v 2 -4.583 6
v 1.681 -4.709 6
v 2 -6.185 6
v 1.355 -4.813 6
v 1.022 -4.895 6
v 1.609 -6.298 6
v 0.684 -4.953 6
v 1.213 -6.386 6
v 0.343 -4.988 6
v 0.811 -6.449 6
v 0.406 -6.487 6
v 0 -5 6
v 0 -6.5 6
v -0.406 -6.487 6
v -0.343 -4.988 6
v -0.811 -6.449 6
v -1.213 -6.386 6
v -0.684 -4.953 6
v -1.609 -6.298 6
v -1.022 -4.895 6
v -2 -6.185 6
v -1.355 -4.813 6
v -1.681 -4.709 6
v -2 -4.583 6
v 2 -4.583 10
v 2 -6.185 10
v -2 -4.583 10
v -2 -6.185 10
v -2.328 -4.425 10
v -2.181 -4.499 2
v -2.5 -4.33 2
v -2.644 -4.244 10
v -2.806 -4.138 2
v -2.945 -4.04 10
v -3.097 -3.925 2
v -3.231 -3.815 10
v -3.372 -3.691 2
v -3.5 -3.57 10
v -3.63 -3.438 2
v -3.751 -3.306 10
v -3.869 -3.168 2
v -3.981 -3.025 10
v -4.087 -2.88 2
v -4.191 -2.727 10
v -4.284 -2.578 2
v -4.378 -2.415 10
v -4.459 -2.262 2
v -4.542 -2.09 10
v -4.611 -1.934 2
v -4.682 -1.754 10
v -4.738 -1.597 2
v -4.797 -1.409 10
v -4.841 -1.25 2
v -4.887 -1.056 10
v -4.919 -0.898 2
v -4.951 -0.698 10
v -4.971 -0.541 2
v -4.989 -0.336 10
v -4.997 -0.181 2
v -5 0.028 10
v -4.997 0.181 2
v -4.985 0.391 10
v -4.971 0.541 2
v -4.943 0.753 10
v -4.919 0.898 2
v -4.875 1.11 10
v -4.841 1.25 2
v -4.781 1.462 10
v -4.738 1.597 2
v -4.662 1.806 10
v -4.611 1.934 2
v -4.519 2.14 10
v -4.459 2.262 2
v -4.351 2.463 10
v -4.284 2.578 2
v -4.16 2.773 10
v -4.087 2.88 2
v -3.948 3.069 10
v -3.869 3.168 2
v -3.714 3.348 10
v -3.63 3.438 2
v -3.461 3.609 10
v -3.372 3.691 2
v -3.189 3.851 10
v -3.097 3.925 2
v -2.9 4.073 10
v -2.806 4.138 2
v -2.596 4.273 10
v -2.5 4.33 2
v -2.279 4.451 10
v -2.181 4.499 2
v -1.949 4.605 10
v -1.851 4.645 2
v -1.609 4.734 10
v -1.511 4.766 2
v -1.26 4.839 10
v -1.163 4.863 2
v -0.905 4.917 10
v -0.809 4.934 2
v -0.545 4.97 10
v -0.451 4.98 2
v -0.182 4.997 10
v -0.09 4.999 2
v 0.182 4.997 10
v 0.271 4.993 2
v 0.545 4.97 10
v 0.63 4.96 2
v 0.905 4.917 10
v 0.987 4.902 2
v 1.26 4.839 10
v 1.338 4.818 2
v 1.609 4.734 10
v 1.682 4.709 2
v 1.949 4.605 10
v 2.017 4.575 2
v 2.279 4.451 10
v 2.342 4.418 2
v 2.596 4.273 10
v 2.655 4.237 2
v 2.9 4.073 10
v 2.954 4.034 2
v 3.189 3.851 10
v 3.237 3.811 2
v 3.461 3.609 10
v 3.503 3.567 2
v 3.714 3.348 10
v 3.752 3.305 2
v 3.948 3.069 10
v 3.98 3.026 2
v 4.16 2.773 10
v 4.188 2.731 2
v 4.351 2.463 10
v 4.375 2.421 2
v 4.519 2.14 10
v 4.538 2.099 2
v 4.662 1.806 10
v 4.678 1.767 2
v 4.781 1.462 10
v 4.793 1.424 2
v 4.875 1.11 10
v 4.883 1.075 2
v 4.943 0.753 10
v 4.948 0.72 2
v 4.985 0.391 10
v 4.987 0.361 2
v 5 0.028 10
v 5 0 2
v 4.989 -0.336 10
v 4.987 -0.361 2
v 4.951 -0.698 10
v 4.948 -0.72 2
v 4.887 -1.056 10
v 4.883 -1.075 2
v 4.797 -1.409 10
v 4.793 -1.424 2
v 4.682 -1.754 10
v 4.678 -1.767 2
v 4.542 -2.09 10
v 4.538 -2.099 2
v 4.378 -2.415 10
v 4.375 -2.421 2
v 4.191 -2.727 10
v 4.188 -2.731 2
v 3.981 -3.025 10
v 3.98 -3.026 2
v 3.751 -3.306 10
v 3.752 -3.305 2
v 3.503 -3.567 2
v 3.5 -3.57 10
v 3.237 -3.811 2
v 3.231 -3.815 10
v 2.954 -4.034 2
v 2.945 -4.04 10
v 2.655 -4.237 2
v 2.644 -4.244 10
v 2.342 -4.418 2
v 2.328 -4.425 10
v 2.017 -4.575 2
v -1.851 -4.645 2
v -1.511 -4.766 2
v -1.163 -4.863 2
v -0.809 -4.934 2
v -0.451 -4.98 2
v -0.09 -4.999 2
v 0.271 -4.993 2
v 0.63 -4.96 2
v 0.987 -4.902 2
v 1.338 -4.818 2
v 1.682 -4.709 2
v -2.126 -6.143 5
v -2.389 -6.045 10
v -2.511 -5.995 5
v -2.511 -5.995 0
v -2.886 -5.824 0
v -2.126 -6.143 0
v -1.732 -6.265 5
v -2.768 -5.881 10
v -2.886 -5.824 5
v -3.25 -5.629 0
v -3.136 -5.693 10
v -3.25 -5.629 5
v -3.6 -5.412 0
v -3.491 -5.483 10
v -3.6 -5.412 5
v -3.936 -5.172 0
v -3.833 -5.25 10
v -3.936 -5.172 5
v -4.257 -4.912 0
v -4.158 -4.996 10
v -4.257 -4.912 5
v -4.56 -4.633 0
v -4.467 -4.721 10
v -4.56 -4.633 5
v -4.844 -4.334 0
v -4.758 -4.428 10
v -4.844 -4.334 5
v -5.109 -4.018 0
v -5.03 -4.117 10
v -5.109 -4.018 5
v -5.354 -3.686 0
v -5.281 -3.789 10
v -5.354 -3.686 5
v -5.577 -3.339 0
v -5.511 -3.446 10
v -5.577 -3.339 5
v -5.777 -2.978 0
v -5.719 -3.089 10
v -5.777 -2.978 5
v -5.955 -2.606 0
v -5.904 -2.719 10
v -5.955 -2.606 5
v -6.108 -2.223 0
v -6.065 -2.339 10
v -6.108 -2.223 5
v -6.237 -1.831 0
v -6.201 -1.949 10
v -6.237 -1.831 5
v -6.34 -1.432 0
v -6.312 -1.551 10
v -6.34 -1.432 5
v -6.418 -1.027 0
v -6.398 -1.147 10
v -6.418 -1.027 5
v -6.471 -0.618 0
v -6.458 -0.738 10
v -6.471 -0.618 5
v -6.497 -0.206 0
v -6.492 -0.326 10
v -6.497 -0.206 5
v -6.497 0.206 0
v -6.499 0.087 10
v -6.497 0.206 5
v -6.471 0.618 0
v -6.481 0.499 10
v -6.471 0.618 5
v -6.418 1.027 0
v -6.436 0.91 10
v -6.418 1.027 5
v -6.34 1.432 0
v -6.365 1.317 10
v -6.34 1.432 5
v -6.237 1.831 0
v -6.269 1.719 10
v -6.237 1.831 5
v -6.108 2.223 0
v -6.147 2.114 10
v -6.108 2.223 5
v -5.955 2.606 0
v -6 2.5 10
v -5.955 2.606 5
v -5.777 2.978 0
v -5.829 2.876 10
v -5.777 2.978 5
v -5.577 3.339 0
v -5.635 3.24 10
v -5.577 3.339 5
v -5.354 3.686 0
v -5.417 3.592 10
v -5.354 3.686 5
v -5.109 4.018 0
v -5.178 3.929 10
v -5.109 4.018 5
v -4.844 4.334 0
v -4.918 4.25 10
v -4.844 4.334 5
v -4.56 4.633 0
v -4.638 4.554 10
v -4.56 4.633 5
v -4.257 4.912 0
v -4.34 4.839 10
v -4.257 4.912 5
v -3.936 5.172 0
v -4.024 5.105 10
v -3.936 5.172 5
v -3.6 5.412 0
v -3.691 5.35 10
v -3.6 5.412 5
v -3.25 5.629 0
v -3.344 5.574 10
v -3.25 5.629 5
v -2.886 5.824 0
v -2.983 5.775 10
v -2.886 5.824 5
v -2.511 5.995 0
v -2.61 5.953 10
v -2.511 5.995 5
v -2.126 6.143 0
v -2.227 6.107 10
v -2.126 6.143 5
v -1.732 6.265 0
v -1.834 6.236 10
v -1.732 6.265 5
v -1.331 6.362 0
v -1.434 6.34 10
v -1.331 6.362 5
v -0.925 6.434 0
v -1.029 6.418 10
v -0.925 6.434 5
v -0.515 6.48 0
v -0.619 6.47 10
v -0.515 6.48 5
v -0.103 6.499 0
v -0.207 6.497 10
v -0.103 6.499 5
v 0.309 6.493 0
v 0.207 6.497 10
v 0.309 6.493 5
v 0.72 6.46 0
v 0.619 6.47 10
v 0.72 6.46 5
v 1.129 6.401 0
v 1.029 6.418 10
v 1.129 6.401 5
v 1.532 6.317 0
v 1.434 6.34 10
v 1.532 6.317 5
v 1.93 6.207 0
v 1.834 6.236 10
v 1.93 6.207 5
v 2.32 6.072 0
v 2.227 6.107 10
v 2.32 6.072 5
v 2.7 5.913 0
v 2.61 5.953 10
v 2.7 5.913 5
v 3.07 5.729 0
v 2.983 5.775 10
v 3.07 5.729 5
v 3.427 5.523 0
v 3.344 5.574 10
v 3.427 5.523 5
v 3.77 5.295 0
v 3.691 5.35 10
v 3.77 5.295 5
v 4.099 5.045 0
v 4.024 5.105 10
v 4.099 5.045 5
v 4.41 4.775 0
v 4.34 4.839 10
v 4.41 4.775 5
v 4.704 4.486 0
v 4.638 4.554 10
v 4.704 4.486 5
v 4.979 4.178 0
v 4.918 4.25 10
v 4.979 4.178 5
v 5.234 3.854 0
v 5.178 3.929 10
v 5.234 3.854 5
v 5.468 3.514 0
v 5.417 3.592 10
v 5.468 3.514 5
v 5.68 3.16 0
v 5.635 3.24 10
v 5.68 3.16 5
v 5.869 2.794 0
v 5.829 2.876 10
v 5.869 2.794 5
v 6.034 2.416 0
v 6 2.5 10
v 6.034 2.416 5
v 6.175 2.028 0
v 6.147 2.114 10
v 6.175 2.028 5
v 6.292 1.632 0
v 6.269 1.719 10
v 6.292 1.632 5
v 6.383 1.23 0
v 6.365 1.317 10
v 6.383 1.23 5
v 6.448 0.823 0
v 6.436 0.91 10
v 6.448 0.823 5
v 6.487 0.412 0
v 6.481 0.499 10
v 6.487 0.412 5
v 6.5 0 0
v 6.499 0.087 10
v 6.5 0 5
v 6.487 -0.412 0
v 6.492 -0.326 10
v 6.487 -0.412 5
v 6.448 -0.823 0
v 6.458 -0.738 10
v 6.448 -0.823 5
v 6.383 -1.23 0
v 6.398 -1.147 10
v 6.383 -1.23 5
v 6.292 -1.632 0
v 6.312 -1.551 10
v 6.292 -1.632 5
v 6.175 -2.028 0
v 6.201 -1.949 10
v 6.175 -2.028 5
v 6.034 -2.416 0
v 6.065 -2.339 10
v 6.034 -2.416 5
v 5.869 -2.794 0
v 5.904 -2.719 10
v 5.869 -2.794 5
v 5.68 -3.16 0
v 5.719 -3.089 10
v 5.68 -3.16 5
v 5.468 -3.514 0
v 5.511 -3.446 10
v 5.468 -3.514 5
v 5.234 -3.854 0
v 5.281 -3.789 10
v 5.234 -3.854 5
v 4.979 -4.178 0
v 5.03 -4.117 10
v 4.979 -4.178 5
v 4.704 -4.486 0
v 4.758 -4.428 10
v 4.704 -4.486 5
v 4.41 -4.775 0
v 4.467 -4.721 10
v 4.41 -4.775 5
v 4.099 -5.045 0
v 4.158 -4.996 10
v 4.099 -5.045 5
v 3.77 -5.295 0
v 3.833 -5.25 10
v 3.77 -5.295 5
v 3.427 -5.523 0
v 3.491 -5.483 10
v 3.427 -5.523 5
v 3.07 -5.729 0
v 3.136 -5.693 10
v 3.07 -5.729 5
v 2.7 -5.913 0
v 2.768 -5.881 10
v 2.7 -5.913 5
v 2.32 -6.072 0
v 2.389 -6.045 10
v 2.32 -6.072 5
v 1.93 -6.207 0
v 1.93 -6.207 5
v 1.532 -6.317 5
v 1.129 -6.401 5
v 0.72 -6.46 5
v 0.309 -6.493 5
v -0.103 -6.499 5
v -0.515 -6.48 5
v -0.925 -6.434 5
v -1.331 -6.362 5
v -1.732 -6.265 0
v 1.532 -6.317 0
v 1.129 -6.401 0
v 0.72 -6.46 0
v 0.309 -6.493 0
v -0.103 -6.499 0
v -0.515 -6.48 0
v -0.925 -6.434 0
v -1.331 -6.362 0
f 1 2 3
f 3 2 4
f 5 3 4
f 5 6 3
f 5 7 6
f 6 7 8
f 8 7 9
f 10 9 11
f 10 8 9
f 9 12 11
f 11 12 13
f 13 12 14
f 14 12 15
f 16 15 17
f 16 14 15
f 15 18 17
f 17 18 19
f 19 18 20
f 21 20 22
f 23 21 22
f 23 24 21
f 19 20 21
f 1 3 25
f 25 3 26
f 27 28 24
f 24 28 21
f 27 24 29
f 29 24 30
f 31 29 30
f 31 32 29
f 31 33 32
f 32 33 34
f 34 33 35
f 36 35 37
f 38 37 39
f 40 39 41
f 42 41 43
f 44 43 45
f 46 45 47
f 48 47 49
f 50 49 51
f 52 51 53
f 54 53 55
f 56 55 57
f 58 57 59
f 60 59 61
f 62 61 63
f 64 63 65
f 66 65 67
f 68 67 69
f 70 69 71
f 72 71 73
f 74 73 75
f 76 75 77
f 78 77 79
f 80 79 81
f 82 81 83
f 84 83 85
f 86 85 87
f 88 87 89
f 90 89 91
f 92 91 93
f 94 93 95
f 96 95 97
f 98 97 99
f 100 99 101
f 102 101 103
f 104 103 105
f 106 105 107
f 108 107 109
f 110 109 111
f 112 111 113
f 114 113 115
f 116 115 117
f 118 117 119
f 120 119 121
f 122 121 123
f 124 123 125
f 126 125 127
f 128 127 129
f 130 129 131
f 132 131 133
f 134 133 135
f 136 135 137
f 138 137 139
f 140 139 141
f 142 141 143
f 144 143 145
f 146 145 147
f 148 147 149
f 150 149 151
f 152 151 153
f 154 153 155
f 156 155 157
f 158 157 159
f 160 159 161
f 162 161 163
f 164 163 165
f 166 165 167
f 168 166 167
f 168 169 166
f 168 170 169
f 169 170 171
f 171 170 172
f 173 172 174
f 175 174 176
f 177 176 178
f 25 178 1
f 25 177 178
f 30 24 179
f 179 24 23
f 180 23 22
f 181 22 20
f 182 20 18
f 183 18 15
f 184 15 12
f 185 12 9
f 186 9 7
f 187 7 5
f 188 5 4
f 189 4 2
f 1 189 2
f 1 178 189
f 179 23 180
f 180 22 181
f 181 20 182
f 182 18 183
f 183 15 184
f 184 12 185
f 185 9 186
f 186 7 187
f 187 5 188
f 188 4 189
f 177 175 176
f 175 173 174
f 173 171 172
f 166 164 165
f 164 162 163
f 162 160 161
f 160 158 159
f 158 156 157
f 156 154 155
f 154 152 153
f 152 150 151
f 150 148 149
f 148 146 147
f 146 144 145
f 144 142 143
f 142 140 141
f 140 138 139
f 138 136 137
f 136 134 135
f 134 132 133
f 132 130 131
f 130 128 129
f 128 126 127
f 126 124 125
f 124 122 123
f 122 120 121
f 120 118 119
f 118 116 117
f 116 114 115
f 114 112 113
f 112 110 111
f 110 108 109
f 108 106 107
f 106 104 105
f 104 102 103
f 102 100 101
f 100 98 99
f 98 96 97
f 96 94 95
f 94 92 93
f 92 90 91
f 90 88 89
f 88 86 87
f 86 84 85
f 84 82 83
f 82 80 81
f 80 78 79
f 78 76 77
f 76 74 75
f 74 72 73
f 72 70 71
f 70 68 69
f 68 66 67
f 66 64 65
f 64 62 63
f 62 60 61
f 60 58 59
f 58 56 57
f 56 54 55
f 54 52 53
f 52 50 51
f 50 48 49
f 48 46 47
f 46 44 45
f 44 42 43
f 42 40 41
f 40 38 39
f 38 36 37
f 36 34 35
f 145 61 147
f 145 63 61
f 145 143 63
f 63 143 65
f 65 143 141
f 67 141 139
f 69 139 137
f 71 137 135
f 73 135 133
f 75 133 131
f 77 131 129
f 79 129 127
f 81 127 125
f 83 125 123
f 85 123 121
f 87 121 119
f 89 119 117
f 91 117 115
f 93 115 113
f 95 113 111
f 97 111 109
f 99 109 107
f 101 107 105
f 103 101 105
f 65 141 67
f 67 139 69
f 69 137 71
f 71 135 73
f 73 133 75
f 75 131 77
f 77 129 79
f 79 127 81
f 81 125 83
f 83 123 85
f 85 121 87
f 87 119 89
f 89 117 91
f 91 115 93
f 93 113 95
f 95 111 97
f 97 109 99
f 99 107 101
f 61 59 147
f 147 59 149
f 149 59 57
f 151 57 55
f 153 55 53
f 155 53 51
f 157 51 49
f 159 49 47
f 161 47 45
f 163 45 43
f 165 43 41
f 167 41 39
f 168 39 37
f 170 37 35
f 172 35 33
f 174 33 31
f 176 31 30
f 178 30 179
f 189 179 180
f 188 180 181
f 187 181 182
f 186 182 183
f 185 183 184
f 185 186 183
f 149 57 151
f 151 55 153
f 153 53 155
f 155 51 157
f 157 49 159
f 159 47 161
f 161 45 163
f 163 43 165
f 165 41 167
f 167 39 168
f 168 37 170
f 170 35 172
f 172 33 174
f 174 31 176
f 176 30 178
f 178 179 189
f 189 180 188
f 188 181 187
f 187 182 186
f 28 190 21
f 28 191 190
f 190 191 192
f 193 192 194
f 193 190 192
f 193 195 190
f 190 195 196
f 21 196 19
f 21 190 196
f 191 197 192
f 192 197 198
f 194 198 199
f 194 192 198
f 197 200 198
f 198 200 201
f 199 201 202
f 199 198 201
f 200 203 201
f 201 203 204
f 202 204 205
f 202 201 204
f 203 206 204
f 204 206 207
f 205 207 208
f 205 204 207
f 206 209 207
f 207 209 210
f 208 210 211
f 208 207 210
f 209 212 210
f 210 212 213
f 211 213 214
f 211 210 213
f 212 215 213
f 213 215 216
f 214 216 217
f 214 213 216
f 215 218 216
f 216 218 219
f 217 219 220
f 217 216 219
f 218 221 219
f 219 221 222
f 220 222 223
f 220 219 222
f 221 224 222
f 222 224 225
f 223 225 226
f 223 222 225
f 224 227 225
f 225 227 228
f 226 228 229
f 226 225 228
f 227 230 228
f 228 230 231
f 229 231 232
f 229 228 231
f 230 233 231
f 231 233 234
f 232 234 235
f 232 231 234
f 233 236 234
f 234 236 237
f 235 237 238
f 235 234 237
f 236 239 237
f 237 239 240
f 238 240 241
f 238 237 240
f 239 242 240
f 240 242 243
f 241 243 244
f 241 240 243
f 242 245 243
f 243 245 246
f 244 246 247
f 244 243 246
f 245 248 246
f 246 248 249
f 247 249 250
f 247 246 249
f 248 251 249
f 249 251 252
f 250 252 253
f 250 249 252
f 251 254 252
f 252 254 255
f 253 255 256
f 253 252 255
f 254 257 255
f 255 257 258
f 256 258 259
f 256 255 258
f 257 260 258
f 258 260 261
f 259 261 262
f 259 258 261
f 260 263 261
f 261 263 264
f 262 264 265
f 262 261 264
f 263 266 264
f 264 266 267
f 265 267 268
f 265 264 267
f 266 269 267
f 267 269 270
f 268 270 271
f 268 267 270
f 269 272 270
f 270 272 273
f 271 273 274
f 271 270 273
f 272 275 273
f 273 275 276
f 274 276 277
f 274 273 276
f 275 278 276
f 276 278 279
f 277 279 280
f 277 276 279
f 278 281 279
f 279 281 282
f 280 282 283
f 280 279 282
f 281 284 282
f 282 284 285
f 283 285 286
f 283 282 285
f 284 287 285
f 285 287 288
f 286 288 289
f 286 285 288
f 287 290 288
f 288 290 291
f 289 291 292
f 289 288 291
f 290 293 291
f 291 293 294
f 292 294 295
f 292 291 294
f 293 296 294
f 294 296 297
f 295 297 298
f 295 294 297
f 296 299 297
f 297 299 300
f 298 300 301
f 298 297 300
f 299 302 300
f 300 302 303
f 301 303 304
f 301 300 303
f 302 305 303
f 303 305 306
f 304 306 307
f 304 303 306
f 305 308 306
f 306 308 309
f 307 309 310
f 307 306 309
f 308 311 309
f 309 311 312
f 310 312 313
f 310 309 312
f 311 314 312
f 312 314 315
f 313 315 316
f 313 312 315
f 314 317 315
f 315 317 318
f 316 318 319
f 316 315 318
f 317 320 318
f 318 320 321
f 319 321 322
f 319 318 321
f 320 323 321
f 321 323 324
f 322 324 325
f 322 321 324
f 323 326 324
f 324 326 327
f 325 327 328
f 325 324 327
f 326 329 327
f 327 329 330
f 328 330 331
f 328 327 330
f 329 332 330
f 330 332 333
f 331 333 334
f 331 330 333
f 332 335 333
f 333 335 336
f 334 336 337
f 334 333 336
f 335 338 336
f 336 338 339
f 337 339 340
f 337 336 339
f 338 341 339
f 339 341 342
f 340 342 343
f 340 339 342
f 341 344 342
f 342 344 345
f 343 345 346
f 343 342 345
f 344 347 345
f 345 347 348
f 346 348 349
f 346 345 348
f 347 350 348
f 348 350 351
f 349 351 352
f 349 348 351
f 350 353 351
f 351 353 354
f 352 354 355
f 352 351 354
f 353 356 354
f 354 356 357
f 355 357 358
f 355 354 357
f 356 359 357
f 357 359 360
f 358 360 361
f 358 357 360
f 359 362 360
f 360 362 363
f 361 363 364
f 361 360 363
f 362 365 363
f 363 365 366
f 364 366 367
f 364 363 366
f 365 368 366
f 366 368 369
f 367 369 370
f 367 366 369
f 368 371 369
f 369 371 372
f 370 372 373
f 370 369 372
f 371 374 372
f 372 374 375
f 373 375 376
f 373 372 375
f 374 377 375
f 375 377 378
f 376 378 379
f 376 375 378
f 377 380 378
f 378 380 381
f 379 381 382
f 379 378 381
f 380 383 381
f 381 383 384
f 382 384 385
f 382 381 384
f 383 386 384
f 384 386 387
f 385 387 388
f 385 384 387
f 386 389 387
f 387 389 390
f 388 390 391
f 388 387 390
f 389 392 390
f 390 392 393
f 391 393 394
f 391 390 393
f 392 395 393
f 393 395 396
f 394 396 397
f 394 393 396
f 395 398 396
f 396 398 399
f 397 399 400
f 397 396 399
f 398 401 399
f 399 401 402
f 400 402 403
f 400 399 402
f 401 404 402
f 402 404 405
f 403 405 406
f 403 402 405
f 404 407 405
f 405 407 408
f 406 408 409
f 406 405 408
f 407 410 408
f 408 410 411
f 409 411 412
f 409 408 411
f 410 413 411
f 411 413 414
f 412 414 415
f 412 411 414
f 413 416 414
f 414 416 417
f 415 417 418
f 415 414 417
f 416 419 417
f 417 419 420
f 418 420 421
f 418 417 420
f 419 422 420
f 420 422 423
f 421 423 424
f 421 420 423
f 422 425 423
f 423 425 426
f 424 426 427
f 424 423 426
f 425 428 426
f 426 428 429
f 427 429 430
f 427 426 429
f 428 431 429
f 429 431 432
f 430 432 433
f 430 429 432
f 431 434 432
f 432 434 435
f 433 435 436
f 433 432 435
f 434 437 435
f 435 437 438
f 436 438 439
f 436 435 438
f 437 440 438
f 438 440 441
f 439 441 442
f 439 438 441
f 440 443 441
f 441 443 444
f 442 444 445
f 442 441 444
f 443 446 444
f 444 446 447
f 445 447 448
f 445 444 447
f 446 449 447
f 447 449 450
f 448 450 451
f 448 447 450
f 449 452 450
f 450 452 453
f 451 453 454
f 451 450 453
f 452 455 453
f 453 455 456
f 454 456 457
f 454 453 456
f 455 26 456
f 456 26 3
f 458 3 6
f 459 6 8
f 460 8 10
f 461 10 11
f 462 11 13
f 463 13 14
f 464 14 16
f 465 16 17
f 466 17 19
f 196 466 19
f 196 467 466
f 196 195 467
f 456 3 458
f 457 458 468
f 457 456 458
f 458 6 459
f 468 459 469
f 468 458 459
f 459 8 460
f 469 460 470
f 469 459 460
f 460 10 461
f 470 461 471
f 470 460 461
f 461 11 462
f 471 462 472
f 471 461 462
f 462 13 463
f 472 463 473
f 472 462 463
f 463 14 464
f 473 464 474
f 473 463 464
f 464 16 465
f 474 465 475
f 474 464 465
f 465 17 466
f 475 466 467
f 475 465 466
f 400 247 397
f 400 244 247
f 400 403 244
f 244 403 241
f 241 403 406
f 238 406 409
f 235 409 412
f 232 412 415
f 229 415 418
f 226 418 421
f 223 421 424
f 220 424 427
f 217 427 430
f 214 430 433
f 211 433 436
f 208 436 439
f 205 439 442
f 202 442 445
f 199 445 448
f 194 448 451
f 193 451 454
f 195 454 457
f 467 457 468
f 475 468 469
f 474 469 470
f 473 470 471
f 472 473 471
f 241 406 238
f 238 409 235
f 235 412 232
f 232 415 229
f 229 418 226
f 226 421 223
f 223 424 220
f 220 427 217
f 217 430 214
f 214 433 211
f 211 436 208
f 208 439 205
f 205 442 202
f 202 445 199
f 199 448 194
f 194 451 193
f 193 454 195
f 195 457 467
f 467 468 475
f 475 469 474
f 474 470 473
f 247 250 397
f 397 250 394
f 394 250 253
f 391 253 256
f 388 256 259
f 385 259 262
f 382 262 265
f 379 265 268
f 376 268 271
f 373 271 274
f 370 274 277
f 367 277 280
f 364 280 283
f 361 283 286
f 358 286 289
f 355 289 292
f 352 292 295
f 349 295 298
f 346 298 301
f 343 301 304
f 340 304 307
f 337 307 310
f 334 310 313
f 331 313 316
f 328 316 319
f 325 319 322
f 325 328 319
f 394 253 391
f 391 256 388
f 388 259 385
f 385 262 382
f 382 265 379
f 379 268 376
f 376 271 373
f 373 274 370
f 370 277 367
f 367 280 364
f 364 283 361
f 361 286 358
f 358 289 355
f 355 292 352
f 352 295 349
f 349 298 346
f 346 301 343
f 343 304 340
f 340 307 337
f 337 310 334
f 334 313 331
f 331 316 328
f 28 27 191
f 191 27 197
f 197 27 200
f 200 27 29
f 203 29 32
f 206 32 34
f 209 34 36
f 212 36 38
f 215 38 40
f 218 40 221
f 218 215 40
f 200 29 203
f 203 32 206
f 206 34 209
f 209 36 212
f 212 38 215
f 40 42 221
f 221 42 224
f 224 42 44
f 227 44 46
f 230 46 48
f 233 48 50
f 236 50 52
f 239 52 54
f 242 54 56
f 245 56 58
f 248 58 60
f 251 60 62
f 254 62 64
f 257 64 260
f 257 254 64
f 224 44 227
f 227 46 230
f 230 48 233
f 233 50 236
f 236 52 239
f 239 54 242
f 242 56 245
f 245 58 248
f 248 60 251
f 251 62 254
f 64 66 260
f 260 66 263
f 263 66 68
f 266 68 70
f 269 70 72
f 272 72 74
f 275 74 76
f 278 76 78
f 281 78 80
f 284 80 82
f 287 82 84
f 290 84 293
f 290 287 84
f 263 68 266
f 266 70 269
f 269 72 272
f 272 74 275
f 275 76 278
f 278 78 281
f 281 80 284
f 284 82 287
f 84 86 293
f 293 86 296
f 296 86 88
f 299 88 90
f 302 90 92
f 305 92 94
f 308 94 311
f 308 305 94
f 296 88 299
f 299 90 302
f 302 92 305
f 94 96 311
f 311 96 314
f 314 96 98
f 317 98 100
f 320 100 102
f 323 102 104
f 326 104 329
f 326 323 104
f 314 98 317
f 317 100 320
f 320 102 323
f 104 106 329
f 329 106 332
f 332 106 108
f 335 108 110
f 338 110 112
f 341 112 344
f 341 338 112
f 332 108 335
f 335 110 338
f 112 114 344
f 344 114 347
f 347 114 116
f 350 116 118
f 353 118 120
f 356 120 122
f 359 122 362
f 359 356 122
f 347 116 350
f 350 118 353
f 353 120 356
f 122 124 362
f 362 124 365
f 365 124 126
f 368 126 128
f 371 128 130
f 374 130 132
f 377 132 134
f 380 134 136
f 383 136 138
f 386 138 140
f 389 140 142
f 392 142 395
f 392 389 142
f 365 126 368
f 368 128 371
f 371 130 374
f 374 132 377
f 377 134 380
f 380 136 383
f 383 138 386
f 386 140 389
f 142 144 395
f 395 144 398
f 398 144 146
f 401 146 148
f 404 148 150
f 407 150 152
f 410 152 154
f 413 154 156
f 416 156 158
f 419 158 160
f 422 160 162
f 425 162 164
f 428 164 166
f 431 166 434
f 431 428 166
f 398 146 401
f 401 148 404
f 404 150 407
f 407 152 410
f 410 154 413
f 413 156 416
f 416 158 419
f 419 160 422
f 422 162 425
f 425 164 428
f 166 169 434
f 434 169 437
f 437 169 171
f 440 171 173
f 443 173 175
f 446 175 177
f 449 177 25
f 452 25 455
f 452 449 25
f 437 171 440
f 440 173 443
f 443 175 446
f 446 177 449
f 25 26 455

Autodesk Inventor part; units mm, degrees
ref_plane "YZ Plane" through (0, 0, 0) normal (1, 0, 0) x (0, 1, 0)
ref_plane "XZ Plane" through (0, 0, 0) normal (0, 1, 0) x (-1, 0, 0)
ref_plane "XY Plane" through (0, 0, 0) normal (0, 0, 1) x (1, 0, 0)
sketch "Sketch1" plane through (0, 0, 0) normal (0, 0, 1) x (1, 0, 0)
  circle A0 centre (0, 0) radius 6.5
  dimension "d0" = 13
extrude "Extrusion1" add sketch "Sketch1" along normal blind 10
sketch "Sketch2" plane through (0, 0, 10) normal (0, 0, 1) x (1, 0, 0)
  circle A0 centre (0, 0) radius 5
  dimension "d3" = 10
extrude "Extrusion2" cut sketch "Sketch2" against normal blind 8
sketch "Sketch3" plane through (0, 0, 10) normal (0, 0, 1) x (1, 0, 0)
  circle A0 centre (0, 0) radius 5 projected
  circle A1 centre (0, 0) radius 6.5 projected
  line L0 (-2, 0) -> (2, 0)
  line L1 (2, 0) -> (2, -6.9117)
  line L2 (2, -6.9117) -> (-2, -6.9117)
  line L3 (-2, -6.9117) -> (-2, 0)
  dimension "d6" = 4
extrude "Extrusion3" cut sketch "Sketch3" against normal blind 4 contours L3 L0 L1 A0 | A0 L1 A1 L3 | A1 L1 L2 L3 picked at (0, -1.6667) picked at (-1.2327, -5.848)
properties part number "capuchon.torre0.2"
